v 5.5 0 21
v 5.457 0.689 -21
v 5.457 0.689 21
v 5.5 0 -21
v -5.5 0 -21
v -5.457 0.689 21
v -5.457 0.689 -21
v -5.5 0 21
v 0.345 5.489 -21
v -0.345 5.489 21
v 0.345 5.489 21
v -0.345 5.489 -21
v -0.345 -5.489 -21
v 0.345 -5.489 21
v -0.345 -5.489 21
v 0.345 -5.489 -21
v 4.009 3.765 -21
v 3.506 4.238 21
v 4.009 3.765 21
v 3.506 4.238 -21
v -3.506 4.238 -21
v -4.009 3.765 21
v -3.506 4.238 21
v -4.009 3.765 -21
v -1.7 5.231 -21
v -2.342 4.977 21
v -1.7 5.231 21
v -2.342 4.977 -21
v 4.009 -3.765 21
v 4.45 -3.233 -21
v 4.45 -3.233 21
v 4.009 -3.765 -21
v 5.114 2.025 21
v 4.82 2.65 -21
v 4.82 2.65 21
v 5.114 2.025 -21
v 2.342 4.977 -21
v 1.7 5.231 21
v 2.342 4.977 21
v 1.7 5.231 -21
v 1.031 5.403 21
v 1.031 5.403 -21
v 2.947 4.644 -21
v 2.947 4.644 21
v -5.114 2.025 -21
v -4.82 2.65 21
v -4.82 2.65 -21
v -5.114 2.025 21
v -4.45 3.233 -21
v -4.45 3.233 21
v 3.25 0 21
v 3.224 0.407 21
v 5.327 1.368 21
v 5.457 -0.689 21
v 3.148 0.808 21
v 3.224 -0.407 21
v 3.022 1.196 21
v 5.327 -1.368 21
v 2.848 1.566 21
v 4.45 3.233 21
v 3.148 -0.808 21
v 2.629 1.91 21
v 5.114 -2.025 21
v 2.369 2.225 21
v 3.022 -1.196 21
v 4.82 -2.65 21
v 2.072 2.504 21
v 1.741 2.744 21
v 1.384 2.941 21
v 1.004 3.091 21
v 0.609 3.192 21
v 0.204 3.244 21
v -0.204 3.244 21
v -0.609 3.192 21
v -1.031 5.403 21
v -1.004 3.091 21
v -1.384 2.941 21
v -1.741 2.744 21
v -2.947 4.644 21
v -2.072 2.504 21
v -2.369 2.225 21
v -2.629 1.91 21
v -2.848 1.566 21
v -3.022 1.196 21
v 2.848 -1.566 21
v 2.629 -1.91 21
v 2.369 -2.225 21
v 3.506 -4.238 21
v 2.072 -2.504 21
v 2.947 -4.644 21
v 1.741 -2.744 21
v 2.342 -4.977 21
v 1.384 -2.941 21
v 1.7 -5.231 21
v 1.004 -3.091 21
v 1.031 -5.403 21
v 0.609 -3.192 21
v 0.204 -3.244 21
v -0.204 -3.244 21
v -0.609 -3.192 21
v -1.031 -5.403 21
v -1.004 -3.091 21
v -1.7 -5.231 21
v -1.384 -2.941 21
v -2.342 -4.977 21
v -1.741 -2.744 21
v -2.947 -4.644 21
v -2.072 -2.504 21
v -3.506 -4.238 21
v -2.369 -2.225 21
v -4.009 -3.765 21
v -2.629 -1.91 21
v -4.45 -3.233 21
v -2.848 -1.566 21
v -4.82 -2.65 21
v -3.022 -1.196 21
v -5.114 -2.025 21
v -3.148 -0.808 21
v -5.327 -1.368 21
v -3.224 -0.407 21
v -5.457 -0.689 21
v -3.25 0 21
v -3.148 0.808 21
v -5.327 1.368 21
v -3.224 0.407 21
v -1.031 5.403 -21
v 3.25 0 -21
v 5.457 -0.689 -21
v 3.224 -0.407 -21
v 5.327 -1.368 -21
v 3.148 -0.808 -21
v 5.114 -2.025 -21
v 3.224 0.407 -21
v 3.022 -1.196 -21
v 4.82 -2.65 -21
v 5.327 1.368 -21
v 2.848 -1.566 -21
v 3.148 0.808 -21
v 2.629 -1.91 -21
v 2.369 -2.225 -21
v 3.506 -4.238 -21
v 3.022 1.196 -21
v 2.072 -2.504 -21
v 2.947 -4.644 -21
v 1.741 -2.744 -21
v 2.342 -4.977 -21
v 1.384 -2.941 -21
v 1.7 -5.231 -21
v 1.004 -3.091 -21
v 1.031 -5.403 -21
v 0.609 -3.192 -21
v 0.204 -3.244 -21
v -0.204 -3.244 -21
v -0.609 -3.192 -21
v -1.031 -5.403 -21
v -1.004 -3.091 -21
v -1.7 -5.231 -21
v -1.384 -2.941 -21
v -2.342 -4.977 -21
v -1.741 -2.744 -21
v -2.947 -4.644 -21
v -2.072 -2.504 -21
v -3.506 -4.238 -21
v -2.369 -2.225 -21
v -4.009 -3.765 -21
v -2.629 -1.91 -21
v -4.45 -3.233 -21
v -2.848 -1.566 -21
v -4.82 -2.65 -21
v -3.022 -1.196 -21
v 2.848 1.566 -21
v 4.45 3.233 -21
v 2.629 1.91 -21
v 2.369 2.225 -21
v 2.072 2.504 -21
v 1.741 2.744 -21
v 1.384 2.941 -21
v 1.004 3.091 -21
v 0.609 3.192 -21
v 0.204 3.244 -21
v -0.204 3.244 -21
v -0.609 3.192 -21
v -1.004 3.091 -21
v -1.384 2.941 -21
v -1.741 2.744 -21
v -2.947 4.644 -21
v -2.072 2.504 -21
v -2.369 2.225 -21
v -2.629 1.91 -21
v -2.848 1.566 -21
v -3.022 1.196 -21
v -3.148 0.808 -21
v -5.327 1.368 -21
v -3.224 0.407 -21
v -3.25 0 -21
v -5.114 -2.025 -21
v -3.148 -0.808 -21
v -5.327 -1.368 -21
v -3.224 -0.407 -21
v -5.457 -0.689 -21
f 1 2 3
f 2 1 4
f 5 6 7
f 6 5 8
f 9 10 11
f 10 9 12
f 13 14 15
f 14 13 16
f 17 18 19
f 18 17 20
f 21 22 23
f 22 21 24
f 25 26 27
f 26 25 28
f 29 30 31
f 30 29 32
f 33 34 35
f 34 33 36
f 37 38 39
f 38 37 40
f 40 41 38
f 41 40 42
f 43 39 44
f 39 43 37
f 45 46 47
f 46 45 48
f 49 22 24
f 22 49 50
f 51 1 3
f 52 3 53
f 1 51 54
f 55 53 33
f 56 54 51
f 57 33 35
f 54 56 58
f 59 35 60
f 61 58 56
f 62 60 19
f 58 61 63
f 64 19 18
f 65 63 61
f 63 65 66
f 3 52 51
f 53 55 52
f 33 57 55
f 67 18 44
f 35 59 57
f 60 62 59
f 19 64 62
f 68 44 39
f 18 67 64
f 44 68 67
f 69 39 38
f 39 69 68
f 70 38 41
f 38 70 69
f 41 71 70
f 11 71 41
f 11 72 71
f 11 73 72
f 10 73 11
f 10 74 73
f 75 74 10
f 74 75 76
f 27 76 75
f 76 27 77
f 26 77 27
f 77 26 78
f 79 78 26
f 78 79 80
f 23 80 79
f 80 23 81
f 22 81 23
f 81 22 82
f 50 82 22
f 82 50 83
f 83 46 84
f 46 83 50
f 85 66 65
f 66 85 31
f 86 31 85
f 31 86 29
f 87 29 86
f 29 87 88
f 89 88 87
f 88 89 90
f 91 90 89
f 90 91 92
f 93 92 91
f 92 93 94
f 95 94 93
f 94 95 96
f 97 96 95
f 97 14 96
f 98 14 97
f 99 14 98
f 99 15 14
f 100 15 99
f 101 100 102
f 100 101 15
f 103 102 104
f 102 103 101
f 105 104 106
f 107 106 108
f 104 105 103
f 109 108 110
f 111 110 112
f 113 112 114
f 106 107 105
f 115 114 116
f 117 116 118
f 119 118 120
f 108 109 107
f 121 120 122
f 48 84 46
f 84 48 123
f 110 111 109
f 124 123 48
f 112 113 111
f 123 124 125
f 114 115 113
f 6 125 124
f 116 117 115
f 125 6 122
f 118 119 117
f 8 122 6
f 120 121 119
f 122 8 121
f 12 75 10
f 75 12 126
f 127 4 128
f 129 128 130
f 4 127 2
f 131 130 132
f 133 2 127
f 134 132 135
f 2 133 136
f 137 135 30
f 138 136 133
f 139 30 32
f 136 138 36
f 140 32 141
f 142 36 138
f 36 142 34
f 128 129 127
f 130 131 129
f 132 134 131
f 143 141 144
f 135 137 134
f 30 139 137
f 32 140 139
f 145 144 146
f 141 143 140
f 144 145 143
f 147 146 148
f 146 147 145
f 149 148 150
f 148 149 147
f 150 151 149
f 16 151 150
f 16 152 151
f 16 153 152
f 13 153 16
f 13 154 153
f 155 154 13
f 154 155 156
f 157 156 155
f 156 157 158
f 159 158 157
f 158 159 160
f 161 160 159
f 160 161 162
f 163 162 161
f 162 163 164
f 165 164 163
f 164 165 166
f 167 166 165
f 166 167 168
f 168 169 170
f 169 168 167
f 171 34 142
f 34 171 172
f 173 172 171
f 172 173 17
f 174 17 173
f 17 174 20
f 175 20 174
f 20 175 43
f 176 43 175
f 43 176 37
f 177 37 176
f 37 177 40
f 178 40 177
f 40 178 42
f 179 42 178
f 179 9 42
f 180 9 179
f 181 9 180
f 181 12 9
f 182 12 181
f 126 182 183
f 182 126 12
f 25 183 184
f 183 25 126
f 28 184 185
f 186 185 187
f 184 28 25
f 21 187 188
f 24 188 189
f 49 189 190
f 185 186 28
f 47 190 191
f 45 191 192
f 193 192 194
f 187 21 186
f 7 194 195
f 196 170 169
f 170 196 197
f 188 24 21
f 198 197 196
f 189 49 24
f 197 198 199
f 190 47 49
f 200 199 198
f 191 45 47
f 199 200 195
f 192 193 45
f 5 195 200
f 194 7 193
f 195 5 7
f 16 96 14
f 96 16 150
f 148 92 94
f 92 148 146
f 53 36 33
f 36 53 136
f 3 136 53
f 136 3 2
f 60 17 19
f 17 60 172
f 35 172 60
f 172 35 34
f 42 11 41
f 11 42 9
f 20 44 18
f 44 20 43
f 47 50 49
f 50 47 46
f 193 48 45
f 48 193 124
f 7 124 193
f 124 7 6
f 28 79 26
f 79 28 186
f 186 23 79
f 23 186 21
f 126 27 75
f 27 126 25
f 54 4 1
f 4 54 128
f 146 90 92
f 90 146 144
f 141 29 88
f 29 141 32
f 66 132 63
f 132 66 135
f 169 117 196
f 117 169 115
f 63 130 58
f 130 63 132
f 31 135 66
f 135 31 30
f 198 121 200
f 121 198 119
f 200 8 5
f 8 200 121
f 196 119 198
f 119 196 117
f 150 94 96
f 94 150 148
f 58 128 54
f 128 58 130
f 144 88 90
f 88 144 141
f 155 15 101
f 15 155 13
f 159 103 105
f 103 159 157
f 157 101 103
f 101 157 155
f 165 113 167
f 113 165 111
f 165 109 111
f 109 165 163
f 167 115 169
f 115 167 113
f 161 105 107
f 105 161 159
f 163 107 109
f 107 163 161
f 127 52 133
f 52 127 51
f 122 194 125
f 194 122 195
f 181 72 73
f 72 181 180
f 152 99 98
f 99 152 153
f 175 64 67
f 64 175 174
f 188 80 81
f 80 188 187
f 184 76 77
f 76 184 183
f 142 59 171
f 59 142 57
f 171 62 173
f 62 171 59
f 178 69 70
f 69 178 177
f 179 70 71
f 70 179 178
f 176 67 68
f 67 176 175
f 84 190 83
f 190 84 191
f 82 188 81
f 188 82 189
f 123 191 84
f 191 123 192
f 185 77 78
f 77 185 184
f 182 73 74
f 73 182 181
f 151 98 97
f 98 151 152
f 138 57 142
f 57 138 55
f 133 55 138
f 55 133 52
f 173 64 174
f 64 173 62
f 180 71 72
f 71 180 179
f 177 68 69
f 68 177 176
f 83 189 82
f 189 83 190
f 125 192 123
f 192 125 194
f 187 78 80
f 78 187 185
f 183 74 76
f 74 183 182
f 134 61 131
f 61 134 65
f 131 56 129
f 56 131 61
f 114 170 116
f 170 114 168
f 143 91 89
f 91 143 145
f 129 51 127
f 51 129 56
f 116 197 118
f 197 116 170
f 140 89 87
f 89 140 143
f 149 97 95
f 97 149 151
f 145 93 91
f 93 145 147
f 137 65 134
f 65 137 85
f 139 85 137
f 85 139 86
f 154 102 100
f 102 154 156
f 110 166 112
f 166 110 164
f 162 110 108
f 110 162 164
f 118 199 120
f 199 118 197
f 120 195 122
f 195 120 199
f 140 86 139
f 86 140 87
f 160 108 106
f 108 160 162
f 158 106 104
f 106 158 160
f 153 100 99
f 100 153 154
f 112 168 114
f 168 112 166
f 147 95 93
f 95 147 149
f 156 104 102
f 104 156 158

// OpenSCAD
$fn = 50;


difference() {
	union() {
		translate(v = [0, 0, -21.0000000000]) {
			cylinder(h = 42, r = 5.5000000000);
		}
	}
	union() {
		translate(v = [0, 0, -100.0000000000]) {
			cylinder(h = 200, r = 3.2500000000);
		}
	}
}
